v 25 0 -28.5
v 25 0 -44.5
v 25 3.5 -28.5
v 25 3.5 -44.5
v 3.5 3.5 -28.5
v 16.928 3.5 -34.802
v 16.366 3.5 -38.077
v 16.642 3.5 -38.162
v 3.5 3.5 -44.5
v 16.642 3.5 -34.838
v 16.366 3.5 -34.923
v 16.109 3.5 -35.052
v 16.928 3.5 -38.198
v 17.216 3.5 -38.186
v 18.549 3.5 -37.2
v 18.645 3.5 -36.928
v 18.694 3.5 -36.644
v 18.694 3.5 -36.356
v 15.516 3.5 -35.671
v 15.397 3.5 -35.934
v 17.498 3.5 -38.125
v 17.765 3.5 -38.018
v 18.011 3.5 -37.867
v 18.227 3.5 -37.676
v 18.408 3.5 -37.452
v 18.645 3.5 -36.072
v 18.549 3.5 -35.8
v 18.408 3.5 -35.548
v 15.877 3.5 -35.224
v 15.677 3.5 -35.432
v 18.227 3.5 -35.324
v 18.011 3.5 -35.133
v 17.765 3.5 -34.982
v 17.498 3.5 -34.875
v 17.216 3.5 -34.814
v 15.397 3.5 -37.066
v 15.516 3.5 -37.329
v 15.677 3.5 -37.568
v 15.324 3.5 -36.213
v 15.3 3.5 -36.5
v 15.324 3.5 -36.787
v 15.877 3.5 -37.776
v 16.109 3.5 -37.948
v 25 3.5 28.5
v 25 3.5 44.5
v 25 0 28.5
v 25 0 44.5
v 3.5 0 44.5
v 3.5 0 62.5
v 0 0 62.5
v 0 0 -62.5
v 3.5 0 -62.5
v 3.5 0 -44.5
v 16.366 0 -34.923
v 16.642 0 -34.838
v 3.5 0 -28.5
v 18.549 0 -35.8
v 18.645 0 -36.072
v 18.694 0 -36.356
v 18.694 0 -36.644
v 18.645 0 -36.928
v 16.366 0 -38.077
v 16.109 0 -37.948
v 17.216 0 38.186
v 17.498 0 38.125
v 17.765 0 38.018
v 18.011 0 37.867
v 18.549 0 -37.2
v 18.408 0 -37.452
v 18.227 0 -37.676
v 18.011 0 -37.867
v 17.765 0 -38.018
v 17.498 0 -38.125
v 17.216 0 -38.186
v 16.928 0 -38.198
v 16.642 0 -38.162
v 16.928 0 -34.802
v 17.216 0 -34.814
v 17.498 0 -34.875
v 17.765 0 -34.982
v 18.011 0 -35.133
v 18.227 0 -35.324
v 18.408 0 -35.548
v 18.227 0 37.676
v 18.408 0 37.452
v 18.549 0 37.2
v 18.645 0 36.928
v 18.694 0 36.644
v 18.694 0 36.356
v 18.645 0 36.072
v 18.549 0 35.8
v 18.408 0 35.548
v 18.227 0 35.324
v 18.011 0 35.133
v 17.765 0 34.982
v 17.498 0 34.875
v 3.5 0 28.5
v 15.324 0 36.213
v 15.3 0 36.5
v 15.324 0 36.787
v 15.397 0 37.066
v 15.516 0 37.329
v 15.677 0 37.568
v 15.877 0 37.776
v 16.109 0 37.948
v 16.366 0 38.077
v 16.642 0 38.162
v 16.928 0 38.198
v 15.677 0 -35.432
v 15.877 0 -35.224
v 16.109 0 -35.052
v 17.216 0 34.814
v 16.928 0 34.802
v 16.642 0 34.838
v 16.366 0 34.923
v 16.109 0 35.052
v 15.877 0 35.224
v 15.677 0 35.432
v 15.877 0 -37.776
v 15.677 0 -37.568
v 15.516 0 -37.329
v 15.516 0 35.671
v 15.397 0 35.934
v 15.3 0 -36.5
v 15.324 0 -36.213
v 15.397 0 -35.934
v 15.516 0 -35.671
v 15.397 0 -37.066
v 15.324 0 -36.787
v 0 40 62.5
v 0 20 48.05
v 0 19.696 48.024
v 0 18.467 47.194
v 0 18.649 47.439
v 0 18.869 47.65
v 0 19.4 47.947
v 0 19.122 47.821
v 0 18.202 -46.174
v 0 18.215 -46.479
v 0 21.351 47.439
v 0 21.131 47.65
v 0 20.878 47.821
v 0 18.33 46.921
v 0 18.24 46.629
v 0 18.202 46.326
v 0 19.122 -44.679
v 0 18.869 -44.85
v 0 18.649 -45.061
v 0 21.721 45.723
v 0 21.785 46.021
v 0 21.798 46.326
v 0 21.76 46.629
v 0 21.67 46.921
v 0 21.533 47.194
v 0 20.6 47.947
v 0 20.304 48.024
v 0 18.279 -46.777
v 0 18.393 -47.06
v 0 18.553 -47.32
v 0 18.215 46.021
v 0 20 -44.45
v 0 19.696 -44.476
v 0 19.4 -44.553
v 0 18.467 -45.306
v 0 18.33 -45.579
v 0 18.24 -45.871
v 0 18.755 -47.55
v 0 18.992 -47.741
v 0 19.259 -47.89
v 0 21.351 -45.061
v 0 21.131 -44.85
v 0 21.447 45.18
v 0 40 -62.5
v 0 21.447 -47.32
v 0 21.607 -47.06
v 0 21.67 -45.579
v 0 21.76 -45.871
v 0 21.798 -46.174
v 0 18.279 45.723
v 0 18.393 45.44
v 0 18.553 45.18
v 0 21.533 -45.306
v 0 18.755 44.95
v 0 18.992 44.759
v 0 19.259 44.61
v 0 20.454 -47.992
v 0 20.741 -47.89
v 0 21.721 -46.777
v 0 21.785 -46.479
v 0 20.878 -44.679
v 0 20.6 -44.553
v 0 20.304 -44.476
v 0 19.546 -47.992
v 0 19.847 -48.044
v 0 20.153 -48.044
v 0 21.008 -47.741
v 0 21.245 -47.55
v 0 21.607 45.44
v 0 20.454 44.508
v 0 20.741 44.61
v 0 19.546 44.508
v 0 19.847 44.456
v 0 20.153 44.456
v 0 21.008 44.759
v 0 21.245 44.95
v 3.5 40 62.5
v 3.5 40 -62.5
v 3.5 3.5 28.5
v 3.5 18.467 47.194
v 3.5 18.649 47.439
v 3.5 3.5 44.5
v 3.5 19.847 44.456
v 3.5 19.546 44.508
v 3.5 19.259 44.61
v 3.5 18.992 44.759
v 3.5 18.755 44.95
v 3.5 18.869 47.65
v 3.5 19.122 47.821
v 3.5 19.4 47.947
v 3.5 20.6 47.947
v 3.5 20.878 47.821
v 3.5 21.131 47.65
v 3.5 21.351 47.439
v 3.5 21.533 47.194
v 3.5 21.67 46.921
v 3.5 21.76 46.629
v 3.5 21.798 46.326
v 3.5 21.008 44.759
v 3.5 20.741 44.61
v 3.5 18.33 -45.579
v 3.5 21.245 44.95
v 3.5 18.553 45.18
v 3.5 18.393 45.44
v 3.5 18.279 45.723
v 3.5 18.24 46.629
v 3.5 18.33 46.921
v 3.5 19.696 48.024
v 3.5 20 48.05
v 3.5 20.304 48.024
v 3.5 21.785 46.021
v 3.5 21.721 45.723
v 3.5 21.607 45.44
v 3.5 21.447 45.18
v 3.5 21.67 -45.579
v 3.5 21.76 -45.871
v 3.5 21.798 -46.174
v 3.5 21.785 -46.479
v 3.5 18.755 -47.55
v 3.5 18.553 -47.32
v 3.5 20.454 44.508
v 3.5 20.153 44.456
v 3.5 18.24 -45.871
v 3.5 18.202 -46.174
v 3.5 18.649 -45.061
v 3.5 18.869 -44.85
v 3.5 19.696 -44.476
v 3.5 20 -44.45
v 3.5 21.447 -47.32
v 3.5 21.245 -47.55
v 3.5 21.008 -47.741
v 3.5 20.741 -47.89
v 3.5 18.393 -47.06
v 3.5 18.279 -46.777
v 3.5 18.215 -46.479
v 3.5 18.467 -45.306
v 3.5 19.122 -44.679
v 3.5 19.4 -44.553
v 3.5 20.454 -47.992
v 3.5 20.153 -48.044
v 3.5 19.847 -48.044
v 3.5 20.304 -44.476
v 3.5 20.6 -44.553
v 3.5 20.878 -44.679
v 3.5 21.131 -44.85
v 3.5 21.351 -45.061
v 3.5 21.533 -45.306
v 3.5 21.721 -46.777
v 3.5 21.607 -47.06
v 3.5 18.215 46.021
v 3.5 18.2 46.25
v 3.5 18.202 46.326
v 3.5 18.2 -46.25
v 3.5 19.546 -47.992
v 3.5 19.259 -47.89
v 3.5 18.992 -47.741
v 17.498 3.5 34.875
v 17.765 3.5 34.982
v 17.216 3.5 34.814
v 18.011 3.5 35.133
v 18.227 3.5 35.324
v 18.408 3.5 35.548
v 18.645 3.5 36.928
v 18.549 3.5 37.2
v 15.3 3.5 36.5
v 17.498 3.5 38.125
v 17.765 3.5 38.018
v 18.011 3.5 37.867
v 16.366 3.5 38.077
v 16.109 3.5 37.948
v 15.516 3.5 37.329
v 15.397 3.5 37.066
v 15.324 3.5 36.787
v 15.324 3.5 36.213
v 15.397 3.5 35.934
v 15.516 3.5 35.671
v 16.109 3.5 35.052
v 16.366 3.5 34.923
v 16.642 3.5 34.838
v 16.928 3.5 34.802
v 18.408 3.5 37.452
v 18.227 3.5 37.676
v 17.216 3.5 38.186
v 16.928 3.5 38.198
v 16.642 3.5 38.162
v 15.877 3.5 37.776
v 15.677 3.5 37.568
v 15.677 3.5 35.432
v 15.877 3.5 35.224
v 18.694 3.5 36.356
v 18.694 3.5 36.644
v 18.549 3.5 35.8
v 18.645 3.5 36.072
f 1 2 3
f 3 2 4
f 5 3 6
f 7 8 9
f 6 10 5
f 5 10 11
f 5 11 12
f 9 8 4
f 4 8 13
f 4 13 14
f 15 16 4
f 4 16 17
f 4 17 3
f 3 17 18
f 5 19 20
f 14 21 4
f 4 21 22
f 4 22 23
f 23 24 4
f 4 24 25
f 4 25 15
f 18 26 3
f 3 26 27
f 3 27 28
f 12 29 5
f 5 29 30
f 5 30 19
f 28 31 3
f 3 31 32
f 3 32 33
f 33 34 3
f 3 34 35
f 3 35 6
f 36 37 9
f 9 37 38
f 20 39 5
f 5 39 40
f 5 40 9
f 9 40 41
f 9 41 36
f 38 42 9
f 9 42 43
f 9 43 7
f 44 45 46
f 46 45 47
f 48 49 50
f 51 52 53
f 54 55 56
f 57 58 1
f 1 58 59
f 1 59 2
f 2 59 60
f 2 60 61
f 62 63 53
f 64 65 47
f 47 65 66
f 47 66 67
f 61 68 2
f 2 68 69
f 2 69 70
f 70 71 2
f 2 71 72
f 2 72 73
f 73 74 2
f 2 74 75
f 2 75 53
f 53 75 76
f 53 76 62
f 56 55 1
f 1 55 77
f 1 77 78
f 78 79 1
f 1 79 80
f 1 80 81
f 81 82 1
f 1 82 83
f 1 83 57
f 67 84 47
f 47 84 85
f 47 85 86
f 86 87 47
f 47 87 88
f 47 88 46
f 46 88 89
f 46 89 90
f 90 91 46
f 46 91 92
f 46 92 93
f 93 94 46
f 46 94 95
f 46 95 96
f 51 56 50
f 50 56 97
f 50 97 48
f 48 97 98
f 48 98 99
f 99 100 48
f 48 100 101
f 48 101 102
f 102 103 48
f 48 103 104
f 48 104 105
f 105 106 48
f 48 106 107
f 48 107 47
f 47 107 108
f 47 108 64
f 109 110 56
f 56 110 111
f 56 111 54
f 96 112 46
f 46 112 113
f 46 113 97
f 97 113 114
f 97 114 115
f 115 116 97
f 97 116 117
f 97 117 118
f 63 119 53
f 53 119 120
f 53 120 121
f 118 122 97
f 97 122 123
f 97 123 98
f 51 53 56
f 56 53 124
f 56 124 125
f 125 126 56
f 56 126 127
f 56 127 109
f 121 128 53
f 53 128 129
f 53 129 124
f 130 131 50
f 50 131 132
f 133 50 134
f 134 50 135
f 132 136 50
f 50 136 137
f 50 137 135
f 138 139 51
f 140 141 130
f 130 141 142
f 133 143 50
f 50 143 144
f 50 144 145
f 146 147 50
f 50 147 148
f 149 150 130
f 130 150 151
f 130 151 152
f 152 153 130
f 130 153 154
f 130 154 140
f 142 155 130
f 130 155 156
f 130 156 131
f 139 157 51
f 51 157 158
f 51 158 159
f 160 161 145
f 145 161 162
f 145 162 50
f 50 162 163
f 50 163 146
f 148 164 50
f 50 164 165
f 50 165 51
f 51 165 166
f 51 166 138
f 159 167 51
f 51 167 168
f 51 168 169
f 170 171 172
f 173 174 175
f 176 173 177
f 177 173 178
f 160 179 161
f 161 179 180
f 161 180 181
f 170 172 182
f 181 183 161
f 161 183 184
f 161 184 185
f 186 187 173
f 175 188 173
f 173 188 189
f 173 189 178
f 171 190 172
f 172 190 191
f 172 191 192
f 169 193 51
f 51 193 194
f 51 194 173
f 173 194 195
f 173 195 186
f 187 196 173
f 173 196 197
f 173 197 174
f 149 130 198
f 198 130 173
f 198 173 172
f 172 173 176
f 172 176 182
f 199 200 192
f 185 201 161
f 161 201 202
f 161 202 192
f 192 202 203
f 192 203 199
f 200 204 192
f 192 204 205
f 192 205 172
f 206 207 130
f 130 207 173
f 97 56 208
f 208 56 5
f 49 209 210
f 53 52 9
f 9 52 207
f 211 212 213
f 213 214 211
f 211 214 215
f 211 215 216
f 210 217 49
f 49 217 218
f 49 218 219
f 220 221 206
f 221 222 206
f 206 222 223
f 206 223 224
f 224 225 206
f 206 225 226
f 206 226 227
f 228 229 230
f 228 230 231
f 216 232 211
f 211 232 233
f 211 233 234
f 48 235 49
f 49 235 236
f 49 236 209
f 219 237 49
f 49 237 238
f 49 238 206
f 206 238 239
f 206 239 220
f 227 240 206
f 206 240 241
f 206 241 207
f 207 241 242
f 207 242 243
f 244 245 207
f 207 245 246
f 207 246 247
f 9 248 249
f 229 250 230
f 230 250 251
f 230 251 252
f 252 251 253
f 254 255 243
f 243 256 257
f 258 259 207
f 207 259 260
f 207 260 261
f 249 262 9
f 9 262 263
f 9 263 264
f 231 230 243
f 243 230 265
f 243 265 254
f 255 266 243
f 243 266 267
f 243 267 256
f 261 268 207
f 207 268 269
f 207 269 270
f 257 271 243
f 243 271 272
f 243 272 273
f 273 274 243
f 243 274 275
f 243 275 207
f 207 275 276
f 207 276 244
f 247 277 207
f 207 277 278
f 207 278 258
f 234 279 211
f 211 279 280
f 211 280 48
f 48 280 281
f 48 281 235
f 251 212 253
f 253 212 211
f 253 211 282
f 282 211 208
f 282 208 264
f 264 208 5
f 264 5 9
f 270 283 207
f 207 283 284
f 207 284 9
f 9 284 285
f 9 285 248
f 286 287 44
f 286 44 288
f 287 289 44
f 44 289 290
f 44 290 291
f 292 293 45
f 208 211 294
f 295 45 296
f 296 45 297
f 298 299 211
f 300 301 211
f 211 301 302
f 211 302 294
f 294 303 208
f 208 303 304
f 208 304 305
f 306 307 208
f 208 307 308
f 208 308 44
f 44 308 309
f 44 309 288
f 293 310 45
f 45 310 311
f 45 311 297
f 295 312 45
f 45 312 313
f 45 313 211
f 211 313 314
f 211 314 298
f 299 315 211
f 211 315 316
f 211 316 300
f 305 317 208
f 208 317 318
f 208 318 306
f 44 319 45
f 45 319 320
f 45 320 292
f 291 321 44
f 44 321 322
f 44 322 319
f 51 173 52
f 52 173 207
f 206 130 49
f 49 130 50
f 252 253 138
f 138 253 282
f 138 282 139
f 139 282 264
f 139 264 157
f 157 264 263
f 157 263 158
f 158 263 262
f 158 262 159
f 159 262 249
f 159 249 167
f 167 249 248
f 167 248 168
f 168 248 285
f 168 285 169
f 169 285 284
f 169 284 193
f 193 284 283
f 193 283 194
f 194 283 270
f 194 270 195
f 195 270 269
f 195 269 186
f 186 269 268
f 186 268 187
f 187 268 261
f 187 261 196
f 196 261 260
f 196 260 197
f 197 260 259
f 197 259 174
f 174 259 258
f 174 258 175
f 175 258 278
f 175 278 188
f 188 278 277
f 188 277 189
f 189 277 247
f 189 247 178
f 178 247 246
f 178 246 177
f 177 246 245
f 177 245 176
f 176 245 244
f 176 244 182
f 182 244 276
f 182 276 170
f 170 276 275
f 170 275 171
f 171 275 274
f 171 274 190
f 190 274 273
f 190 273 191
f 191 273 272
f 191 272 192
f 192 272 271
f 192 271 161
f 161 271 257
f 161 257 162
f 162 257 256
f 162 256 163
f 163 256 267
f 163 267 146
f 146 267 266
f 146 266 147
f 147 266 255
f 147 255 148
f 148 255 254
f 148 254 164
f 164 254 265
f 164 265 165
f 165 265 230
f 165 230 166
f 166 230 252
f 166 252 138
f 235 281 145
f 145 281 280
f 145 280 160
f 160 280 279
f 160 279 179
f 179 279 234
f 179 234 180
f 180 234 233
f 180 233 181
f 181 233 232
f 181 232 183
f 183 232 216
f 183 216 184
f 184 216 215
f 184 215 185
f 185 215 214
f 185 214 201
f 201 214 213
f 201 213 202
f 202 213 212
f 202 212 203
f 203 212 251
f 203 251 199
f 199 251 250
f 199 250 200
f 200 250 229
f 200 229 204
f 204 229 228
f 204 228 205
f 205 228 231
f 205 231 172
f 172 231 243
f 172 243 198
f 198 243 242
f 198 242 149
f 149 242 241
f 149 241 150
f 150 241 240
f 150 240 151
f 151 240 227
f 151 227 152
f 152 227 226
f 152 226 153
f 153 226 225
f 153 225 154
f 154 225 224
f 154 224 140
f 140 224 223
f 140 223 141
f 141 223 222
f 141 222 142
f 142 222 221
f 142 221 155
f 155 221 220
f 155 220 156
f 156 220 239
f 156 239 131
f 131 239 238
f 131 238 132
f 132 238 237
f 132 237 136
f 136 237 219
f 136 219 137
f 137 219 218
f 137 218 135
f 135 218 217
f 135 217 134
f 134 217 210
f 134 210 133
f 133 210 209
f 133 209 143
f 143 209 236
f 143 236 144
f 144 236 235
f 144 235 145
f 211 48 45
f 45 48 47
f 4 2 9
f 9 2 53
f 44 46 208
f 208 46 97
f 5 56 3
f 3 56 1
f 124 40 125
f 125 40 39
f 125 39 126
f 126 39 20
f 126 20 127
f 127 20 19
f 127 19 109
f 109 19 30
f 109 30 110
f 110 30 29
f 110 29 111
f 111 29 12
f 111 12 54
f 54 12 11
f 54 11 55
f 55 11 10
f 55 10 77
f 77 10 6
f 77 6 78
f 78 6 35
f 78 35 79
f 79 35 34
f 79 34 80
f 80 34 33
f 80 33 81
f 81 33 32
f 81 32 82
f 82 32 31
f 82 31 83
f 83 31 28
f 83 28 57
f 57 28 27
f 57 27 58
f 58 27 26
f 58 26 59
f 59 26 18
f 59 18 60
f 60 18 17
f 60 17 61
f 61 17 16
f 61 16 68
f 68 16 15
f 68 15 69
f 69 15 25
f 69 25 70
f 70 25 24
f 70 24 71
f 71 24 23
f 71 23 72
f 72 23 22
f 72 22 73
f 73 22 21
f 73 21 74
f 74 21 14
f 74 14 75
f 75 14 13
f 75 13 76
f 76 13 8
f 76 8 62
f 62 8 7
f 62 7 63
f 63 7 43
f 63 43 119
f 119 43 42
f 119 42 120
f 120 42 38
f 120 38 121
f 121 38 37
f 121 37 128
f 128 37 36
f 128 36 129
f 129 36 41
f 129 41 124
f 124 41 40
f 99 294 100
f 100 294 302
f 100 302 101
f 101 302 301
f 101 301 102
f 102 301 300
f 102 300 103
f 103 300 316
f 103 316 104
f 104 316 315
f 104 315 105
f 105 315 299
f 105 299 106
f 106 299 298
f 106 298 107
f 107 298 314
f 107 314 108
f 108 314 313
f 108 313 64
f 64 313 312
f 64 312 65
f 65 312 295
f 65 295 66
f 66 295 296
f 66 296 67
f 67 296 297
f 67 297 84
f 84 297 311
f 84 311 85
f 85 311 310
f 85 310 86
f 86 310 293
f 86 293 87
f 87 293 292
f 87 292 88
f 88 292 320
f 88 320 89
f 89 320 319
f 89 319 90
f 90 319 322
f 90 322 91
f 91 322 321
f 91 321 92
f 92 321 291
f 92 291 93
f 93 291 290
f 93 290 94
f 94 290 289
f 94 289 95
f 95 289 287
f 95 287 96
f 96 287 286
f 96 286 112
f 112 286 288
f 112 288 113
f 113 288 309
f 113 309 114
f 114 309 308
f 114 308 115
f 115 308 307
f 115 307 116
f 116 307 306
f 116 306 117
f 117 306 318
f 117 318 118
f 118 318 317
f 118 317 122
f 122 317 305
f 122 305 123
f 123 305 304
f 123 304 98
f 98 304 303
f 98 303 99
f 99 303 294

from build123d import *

# Parameters (mm, degrees)
BOSS_EXTRUDE3_DEPTH      = 62.5
BOSS_EXTRUDE3_DEPTH_BACK = 62.5
SKETCH4_R                = 1.8
CUT_EXTRUDE1_DEPTH       = 62.5
SKETCH5_R                = 1.8
CUT_EXTRUDE2_DEPTH       = 62.5
SKETCH7_W                = 21.5
SKETCH7_H                = 18
CUT_EXTRUDE5_DEPTH       = 62.5
SKETCH10_W               = 21.5
SKETCH10_H               = 18
CUT_EXTRUDE7_DEPTH       = 62.5
SKETCH13_W               = 21.5
SKETCH13_H               = 28.5
CUT_EXTRUDE9_DEPTH       = 62.5
SKETCH18_W               = 21.5
SKETCH18_H               = 28.5
CUT_EXTRUDE10_DEPTH      = 62.5
SKETCH20_R               = 1.7
CUT_EXTRUDE11_DEPTH      = 62.5
SKETCH21_R               = 1.7
CUT_EXTRUDE12_DEPTH      = 62.5


with BuildPart() as part:
    # Sketch1 → Boss-Extrude3 (new, two sides: drawn at the far end of the back side and taken through both)
    with BuildSketch(Plane.XY.offset(-BOSS_EXTRUDE3_DEPTH_BACK)):
        Polygon((0, 0), (0, 40), (3.5, 40), (3.5, 3.5), (25, 3.5), (25, 0), align=None)
    extrude(amount=BOSS_EXTRUDE3_DEPTH + BOSS_EXTRUDE3_DEPTH_BACK)

    # Sketch4 → Cut-Extrude1 (cut)
    with BuildSketch(Plane.ZY):
        with Locations((-46.25, 20)):
            Circle(SKETCH4_R)
    extrude(amount=-CUT_EXTRUDE1_DEPTH, mode=Mode.SUBTRACT)

    # Sketch5 → Cut-Extrude2 (cut)
    with BuildSketch(Plane.ZY):
        with Locations((46.25, 20)):
            Circle(SKETCH5_R)
    extrude(amount=-CUT_EXTRUDE2_DEPTH, mode=Mode.SUBTRACT)

    # Sketch7 → Cut-Extrude5 (cut)
    with BuildSketch(Plane(origin=(0, 3.5, 0), x_dir=(1, 0, 0), z_dir=(0, 1, 0))):
        with Locations((14.25, -53.5)):
            Rectangle(SKETCH7_W, SKETCH7_H)
    extrude(amount=-CUT_EXTRUDE5_DEPTH, mode=Mode.SUBTRACT)

    # Sketch10 → Cut-Extrude7 (cut)
    with BuildSketch(Plane(origin=(0, 3.5, 0), x_dir=(1, 0, 0), z_dir=(0, 1, 0))):
        with Locations((14.25, 53.5)):
            Rectangle(SKETCH10_W, SKETCH10_H)
    extrude(amount=-CUT_EXTRUDE7_DEPTH, mode=Mode.SUBTRACT)

    # Sketch13 → Cut-Extrude9 (cut)
    with BuildSketch(Plane(origin=(0, 3.5, 0), x_dir=(1, 0, 0), z_dir=(0, 1, 0))):
        with Locations((14.25, -14.25)):
            Rectangle(SKETCH13_W, SKETCH13_H)
    extrude(amount=-CUT_EXTRUDE9_DEPTH, mode=Mode.SUBTRACT)

    # Sketch18 → Cut-Extrude10 (cut)
    with BuildSketch(Plane(origin=(0, 3.5, 0), x_dir=(1, 0, 0), z_dir=(0, 1, 0))):
        with Locations((14.25, 14.25)):
            Rectangle(SKETCH18_W, SKETCH18_H)
    extrude(amount=-CUT_EXTRUDE10_DEPTH, mode=Mode.SUBTRACT)

    # Sketch20 → Cut-Extrude11 (cut)
    with BuildSketch(Plane(origin=(0, 3.5, 0), x_dir=(1, 0, 0), z_dir=(0, 1, 0))):
        with Locations((17, 36.5)):
            Circle(SKETCH20_R)
    extrude(amount=-CUT_EXTRUDE11_DEPTH, mode=Mode.SUBTRACT)

    # Sketch21 → Cut-Extrude12 (cut)
    with BuildSketch(Plane(origin=(0, 3.5, 0), x_dir=(1, 0, 0), z_dir=(0, 1, 0))):
        with Locations((17, -36.5)):
            Circle(SKETCH21_R)
    extrude(amount=-CUT_EXTRUDE12_DEPTH, mode=Mode.SUBTRACT)


solid = part.part
